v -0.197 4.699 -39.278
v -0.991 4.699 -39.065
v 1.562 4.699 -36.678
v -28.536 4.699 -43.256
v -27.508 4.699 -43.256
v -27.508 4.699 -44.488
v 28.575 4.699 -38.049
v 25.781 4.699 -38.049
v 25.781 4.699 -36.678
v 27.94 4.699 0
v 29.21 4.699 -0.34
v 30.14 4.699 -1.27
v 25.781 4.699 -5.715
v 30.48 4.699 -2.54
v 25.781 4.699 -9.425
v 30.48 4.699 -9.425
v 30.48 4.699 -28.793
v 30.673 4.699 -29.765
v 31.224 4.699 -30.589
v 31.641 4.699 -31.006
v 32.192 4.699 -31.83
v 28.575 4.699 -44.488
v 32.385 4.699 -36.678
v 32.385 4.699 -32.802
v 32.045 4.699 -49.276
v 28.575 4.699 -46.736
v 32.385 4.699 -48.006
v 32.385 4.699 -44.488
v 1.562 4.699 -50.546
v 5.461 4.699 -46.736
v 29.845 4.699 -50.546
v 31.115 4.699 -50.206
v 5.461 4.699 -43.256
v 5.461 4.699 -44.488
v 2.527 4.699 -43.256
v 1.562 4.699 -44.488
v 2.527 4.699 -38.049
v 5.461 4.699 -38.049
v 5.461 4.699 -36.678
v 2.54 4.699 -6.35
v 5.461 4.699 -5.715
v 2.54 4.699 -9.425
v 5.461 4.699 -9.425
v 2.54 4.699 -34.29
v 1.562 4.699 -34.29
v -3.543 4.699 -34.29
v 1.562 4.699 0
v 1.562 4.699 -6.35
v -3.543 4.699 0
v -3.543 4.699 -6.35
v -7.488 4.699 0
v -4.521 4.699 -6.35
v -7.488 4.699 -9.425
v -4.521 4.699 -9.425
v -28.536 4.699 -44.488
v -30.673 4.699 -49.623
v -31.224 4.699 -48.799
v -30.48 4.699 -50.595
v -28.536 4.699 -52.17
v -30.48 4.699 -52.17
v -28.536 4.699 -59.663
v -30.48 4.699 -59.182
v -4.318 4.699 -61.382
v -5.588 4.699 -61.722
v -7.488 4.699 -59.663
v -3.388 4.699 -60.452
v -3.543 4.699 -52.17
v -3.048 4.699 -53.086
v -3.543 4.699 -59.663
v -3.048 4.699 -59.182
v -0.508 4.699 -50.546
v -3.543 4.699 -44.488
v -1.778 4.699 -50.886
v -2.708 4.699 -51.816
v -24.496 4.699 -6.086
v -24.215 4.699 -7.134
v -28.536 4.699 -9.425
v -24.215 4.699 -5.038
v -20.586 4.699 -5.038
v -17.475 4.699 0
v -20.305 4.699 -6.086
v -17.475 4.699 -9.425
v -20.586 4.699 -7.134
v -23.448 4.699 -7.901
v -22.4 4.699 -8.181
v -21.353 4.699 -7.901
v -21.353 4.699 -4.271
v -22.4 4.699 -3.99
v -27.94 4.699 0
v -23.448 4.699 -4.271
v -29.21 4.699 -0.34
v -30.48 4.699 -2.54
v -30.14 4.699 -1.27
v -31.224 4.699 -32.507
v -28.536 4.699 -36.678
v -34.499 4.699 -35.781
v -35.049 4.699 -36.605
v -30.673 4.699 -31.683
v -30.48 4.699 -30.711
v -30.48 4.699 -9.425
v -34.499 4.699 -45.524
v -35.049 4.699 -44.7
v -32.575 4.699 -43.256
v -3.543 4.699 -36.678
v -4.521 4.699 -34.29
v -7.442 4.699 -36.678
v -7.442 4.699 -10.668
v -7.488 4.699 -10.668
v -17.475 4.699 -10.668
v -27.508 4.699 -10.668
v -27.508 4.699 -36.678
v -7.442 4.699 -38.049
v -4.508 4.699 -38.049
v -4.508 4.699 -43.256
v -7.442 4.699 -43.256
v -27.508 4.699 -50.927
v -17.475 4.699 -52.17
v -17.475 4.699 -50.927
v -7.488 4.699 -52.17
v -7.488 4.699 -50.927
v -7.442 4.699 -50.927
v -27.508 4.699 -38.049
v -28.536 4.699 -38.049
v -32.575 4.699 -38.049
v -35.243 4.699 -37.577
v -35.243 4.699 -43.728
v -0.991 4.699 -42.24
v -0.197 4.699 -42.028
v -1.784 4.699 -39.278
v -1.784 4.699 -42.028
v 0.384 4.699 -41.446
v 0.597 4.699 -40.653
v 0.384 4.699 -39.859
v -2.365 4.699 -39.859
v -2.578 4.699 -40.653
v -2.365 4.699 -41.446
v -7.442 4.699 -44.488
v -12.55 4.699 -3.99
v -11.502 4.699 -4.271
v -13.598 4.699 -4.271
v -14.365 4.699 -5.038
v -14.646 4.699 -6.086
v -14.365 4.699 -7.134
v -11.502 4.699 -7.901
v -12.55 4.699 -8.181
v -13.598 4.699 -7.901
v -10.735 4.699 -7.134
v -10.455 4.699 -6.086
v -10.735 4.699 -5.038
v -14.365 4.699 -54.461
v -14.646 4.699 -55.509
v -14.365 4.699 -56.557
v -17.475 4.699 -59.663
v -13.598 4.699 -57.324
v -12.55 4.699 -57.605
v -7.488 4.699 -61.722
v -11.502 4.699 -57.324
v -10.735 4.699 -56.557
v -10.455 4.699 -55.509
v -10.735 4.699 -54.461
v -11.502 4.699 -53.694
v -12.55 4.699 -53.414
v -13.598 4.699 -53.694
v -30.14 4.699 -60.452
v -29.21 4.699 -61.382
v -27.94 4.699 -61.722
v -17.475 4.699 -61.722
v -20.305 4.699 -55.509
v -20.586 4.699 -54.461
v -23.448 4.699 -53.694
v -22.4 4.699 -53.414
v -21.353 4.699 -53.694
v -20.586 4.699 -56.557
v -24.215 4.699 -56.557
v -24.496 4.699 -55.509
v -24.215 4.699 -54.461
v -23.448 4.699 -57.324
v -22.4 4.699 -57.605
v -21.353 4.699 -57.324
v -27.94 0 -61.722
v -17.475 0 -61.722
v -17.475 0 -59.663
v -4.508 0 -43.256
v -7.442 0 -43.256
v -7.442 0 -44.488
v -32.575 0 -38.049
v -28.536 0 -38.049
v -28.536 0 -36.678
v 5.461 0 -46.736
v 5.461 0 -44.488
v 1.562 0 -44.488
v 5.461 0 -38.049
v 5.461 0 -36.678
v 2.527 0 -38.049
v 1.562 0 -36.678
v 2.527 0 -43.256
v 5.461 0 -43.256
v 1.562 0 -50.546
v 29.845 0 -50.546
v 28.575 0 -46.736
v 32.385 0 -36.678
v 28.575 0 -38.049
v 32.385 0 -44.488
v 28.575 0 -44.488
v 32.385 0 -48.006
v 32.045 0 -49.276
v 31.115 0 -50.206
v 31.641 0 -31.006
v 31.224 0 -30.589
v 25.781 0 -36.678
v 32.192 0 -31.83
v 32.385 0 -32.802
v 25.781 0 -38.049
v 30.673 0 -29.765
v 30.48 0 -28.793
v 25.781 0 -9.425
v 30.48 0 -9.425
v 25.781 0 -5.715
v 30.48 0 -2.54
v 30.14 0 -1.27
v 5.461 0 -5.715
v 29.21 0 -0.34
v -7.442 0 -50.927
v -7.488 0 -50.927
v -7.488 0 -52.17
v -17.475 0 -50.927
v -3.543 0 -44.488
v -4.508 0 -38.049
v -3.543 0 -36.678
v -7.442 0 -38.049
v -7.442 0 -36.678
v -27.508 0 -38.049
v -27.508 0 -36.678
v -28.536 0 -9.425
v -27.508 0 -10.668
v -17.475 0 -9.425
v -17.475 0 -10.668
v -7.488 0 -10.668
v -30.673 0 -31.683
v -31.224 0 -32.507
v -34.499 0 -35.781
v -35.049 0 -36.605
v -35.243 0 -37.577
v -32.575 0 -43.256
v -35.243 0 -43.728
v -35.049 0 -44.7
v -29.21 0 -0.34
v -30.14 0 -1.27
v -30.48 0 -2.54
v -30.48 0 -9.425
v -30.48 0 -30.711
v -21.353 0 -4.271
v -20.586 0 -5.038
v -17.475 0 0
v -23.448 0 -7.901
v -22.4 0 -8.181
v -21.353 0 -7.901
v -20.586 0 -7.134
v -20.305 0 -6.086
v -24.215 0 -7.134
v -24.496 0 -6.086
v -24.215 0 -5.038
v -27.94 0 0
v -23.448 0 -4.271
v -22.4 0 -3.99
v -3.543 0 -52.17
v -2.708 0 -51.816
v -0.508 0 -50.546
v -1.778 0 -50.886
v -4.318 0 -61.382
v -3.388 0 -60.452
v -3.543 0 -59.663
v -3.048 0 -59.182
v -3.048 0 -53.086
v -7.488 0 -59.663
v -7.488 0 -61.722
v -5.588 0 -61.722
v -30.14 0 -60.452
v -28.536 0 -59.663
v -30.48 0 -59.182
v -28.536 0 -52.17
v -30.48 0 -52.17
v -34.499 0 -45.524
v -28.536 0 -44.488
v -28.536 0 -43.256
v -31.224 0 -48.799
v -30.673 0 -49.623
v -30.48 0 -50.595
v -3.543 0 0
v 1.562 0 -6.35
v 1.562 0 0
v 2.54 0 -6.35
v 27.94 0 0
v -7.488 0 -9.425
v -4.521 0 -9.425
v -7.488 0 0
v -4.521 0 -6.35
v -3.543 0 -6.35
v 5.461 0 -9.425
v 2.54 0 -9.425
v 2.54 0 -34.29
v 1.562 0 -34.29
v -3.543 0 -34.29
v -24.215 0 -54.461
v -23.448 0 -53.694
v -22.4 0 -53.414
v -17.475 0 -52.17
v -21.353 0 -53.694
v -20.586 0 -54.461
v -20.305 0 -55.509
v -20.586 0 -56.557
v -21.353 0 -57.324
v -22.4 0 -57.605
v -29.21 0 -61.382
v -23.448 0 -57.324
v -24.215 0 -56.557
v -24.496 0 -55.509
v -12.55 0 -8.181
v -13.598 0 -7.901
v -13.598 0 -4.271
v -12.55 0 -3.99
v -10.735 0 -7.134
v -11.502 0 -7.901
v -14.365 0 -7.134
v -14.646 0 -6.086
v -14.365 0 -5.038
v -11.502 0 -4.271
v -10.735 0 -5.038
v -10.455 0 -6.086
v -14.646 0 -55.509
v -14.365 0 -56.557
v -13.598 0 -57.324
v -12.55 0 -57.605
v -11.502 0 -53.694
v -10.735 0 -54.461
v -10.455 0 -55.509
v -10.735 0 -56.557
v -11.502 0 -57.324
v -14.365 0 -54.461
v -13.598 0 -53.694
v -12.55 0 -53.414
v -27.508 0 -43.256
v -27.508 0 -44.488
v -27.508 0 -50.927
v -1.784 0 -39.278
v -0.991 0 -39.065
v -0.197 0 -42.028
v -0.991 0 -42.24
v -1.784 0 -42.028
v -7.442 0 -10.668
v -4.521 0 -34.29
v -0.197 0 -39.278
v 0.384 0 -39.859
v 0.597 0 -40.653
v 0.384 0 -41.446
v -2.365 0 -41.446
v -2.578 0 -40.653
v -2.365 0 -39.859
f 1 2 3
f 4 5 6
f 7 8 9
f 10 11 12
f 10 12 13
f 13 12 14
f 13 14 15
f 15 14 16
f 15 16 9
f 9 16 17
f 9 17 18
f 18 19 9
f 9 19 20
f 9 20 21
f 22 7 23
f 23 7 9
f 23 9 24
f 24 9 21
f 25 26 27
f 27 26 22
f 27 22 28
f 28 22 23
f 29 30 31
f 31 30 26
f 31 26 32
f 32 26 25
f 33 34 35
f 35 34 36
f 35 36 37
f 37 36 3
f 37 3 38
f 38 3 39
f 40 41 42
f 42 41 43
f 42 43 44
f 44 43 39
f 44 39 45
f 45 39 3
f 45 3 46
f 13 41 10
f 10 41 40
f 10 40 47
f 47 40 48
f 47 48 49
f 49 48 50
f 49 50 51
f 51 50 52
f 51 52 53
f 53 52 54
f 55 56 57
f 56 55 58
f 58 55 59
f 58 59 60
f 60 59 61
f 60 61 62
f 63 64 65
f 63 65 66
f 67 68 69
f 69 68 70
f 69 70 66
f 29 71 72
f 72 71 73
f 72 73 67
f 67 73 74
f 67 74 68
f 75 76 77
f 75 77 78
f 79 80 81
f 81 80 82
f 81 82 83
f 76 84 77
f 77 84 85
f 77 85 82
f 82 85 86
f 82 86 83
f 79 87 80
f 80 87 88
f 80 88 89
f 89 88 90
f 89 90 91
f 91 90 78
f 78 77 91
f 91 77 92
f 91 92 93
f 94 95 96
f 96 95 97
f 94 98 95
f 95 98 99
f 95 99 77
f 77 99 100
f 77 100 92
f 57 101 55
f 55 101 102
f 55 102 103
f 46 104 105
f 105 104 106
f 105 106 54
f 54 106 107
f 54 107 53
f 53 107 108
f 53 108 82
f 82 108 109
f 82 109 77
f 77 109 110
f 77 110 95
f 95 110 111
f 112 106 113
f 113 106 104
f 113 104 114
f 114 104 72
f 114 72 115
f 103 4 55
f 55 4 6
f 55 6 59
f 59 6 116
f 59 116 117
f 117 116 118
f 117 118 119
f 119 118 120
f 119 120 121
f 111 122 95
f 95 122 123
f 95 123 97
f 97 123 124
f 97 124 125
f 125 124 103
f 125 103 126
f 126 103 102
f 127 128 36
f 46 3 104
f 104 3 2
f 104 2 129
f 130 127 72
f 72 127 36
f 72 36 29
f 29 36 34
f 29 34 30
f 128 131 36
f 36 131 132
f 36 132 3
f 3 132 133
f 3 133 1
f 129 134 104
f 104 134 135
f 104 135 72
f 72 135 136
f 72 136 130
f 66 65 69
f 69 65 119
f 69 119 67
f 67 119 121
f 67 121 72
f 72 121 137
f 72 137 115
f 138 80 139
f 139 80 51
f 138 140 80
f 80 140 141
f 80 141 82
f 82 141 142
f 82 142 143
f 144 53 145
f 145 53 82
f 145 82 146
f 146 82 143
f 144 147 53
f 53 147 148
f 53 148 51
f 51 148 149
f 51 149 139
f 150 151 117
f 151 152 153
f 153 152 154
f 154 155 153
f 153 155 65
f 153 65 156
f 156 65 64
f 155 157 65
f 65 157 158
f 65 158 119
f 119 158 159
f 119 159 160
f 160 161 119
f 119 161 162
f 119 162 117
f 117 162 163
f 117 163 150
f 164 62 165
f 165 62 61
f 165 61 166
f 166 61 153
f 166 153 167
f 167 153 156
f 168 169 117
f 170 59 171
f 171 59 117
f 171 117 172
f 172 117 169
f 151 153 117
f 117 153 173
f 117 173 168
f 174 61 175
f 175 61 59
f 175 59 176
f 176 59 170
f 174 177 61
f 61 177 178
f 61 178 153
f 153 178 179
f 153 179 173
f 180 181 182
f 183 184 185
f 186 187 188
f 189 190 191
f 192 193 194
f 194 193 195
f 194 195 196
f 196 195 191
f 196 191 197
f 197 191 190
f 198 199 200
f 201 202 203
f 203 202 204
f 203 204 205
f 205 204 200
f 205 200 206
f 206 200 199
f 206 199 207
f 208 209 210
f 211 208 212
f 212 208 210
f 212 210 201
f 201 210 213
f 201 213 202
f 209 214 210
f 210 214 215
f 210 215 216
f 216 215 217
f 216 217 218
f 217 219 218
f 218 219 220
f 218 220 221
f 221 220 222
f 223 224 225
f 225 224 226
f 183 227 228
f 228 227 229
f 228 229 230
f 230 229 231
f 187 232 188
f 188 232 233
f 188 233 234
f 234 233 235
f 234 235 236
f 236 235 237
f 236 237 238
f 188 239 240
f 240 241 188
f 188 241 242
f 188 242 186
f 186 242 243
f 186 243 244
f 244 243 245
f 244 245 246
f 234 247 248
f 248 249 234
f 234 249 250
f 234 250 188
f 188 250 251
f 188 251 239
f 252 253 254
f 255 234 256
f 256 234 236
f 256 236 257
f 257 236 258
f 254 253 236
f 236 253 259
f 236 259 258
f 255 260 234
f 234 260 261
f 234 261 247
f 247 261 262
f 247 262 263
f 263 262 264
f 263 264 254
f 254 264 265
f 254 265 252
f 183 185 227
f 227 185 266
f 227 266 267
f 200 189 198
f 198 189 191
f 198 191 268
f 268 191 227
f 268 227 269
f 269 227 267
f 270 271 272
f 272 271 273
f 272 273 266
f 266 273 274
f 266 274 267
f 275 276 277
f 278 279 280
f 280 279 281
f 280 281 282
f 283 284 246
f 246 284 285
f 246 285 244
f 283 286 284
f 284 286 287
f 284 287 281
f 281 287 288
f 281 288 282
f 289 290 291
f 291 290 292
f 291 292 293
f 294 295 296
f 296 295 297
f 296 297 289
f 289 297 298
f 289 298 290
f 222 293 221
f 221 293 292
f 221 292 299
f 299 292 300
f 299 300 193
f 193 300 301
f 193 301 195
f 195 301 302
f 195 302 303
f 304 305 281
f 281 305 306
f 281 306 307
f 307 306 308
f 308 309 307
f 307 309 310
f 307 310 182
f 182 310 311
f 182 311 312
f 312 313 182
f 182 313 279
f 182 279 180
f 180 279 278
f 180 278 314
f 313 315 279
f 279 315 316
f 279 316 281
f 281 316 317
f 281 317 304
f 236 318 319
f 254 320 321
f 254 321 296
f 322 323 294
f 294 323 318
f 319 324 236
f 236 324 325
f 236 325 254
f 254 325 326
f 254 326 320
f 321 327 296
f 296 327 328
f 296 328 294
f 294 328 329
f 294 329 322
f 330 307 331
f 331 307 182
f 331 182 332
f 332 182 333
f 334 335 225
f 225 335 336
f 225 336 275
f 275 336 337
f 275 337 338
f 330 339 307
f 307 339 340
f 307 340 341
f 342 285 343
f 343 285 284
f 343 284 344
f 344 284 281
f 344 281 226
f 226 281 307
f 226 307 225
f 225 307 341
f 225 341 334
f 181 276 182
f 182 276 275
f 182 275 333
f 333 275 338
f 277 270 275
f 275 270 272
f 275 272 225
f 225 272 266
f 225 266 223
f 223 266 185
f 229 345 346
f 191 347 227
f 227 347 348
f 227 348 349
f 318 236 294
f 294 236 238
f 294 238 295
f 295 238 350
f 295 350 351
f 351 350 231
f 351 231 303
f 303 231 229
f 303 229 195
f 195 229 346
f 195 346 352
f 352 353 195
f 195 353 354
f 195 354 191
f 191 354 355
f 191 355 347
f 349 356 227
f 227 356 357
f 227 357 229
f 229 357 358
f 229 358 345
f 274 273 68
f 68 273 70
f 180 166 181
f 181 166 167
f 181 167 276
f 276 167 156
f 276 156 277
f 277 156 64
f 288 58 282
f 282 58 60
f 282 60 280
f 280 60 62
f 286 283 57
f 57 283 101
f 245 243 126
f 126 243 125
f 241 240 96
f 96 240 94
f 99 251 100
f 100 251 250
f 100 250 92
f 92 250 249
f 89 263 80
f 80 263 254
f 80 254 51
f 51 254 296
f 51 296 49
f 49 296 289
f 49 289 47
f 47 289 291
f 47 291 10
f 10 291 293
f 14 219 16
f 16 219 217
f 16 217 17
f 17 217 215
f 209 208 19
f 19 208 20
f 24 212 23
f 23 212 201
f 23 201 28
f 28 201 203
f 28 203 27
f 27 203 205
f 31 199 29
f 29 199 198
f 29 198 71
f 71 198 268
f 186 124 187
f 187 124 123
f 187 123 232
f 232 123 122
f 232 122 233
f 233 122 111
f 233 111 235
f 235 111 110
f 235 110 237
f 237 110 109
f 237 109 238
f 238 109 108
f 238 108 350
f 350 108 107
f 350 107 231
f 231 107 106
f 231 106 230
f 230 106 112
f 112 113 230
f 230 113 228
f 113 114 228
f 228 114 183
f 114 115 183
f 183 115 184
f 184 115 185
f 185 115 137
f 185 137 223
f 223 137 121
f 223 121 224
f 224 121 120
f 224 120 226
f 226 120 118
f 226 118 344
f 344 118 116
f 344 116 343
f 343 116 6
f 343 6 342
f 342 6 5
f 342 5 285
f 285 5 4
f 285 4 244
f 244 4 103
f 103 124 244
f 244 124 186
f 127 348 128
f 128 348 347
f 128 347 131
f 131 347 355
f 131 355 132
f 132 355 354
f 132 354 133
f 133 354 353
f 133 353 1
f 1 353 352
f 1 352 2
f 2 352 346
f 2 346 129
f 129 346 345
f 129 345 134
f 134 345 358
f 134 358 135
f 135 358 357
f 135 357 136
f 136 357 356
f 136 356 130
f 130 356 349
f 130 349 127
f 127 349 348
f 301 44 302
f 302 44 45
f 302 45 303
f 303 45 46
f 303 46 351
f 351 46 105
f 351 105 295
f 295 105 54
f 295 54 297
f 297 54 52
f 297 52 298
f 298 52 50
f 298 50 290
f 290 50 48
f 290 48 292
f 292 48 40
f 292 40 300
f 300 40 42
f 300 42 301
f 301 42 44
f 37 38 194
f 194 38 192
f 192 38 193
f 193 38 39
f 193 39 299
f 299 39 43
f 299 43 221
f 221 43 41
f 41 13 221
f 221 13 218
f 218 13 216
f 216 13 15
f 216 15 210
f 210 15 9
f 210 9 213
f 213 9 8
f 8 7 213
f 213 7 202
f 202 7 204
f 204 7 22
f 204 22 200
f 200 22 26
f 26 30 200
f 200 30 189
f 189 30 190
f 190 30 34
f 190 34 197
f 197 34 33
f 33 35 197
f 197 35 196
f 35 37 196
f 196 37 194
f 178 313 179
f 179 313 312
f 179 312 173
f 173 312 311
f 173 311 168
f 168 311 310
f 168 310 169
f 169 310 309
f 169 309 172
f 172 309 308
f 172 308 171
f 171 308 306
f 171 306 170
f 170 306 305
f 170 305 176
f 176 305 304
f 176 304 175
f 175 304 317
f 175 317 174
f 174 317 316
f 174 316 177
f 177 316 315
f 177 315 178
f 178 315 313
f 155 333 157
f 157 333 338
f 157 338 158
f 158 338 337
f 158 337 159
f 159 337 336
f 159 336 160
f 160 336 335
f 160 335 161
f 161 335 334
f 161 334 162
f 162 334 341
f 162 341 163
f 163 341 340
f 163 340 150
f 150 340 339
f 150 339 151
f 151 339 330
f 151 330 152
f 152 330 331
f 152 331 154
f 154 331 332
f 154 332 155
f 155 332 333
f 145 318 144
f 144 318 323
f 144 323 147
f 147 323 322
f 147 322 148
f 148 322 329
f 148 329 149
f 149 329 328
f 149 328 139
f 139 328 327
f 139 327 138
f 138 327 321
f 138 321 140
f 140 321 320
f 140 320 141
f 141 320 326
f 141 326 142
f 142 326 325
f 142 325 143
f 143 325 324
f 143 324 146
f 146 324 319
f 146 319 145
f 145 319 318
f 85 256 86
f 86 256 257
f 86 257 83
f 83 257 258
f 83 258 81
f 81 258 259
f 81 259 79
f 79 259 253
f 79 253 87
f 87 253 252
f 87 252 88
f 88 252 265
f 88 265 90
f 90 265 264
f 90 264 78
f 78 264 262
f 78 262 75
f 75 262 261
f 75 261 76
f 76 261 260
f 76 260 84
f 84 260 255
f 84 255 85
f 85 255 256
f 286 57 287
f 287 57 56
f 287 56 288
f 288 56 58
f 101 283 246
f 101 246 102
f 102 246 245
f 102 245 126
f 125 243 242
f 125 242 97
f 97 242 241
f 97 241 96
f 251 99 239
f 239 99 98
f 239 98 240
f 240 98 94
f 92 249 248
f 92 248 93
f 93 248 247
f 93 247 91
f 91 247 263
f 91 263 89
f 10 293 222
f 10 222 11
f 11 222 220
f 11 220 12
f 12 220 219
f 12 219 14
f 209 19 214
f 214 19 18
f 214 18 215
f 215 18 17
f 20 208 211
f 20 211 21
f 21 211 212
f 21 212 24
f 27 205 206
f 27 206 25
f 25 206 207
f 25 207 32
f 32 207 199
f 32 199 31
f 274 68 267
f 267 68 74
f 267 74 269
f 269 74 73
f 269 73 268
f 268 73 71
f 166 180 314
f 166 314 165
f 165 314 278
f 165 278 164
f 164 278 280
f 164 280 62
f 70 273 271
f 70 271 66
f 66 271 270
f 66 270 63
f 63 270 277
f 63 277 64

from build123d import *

# Parameters (mm, degrees)
SKETCH1_R           = 1.5875
SKETCH1_R_2         = 2.0955
SKETCH1_W           = 7.0612
SKETCH1_H           = 27.94
BOSS_EXTRUDE1_DEPTH = 4.699
FILLET1_R           = 2.54


with BuildPart() as part:
    # Sketch1 → Boss-Extrude1 (new body)
    with BuildSketch(Plane(origin=(0, 0, 0), x_dir=(1, 0, 0), z_dir=(0, 1, 0))):
        Polygon((0, 0), (30.48, 0), (30.48, 29.845), (32.385, 31.75), (32.385, 50.546), (-3.048, 50.546), (-3.048, 61.722), (-30.48, 61.722), (-30.48, 49.5427), (-35.2425, 44.7802), (-35.2425, 36.5252), (-30.48, 31.7627), (-30.48, 0), align=None)
        with Locations(Location((-0.9906, 40.6527, 0), (0, 0, 270))):
            Circle(SKETCH1_R, mode=Mode.SUBTRACT)
        with Locations(Location((-12.55014, 55.50916, 0), (0, 0, 270))):
            Circle(SKETCH1_R_2, mode=Mode.SUBTRACT)
        with Locations(Location((-22.40026, 55.50916, 0), (0, 0, 270))):
            Circle(SKETCH1_R_2, mode=Mode.SUBTRACT)
        with Locations(Location((-12.55014, 6.08584, 0), (0, 0, 270))):
            Circle(SKETCH1_R_2, mode=Mode.SUBTRACT)
        with Locations(Location((-22.40026, 6.08584, 0), (0, 0, 270))):
            Circle(SKETCH1_R_2, mode=Mode.SUBTRACT)
        Polygon((5.461, 5.715), (25.781, 5.715), (25.781, 38.0492), (28.575, 38.0492), (28.575, 46.736), (5.461, 46.736), (5.461, 43.2562), (2.5273, 43.2562), (2.5273, 38.0492), (5.461, 38.0492), align=None, mode=Mode.SUBTRACT)
        Polygon((-27.5082, 10.668), (-7.4422, 10.668), (-7.4422, 38.0492), (-4.5085, 38.0492), (-4.5085, 43.2562), (-7.4422, 43.2562), (-7.4422, 50.927), (-27.5082, 50.927), (-27.5082, 43.2562), (-32.5755, 43.2562), (-32.5755, 38.0492), (-27.5082, 38.0492), align=None, mode=Mode.SUBTRACT)
        with Locations((-0.9906, 20.32)):
            Rectangle(SKETCH1_W, SKETCH1_H, mode=Mode.SUBTRACT)
    extrude(amount=BOSS_EXTRUDE1_DEPTH)

    # Fillet1
    fillet1_edges = [part.edges().sort_by_distance(p)[0] for p in [
        (-3.048, 2.3495, -50.546),
        (32.385, 2.3495, -50.546),
        (32.385, 2.3495, -31.75),
        (30.48, 2.3495, -29.845),
        (30.48, 2.3495, 0),
        (-30.48, 2.3495, 0),
        (-30.48, 2.3495, -31.7627),
        (-35.2425, 2.3495, -36.5252),
        (-35.2425, 2.3495, -44.7802),
        (-30.48, 2.3495, -49.5427),
        (-30.48, 2.3495, -61.722),
        (-3.048, 2.3495, -61.722),
    ]]
    fillet(fillet1_edges, radius=FILLET1_R)


solid = part.part
